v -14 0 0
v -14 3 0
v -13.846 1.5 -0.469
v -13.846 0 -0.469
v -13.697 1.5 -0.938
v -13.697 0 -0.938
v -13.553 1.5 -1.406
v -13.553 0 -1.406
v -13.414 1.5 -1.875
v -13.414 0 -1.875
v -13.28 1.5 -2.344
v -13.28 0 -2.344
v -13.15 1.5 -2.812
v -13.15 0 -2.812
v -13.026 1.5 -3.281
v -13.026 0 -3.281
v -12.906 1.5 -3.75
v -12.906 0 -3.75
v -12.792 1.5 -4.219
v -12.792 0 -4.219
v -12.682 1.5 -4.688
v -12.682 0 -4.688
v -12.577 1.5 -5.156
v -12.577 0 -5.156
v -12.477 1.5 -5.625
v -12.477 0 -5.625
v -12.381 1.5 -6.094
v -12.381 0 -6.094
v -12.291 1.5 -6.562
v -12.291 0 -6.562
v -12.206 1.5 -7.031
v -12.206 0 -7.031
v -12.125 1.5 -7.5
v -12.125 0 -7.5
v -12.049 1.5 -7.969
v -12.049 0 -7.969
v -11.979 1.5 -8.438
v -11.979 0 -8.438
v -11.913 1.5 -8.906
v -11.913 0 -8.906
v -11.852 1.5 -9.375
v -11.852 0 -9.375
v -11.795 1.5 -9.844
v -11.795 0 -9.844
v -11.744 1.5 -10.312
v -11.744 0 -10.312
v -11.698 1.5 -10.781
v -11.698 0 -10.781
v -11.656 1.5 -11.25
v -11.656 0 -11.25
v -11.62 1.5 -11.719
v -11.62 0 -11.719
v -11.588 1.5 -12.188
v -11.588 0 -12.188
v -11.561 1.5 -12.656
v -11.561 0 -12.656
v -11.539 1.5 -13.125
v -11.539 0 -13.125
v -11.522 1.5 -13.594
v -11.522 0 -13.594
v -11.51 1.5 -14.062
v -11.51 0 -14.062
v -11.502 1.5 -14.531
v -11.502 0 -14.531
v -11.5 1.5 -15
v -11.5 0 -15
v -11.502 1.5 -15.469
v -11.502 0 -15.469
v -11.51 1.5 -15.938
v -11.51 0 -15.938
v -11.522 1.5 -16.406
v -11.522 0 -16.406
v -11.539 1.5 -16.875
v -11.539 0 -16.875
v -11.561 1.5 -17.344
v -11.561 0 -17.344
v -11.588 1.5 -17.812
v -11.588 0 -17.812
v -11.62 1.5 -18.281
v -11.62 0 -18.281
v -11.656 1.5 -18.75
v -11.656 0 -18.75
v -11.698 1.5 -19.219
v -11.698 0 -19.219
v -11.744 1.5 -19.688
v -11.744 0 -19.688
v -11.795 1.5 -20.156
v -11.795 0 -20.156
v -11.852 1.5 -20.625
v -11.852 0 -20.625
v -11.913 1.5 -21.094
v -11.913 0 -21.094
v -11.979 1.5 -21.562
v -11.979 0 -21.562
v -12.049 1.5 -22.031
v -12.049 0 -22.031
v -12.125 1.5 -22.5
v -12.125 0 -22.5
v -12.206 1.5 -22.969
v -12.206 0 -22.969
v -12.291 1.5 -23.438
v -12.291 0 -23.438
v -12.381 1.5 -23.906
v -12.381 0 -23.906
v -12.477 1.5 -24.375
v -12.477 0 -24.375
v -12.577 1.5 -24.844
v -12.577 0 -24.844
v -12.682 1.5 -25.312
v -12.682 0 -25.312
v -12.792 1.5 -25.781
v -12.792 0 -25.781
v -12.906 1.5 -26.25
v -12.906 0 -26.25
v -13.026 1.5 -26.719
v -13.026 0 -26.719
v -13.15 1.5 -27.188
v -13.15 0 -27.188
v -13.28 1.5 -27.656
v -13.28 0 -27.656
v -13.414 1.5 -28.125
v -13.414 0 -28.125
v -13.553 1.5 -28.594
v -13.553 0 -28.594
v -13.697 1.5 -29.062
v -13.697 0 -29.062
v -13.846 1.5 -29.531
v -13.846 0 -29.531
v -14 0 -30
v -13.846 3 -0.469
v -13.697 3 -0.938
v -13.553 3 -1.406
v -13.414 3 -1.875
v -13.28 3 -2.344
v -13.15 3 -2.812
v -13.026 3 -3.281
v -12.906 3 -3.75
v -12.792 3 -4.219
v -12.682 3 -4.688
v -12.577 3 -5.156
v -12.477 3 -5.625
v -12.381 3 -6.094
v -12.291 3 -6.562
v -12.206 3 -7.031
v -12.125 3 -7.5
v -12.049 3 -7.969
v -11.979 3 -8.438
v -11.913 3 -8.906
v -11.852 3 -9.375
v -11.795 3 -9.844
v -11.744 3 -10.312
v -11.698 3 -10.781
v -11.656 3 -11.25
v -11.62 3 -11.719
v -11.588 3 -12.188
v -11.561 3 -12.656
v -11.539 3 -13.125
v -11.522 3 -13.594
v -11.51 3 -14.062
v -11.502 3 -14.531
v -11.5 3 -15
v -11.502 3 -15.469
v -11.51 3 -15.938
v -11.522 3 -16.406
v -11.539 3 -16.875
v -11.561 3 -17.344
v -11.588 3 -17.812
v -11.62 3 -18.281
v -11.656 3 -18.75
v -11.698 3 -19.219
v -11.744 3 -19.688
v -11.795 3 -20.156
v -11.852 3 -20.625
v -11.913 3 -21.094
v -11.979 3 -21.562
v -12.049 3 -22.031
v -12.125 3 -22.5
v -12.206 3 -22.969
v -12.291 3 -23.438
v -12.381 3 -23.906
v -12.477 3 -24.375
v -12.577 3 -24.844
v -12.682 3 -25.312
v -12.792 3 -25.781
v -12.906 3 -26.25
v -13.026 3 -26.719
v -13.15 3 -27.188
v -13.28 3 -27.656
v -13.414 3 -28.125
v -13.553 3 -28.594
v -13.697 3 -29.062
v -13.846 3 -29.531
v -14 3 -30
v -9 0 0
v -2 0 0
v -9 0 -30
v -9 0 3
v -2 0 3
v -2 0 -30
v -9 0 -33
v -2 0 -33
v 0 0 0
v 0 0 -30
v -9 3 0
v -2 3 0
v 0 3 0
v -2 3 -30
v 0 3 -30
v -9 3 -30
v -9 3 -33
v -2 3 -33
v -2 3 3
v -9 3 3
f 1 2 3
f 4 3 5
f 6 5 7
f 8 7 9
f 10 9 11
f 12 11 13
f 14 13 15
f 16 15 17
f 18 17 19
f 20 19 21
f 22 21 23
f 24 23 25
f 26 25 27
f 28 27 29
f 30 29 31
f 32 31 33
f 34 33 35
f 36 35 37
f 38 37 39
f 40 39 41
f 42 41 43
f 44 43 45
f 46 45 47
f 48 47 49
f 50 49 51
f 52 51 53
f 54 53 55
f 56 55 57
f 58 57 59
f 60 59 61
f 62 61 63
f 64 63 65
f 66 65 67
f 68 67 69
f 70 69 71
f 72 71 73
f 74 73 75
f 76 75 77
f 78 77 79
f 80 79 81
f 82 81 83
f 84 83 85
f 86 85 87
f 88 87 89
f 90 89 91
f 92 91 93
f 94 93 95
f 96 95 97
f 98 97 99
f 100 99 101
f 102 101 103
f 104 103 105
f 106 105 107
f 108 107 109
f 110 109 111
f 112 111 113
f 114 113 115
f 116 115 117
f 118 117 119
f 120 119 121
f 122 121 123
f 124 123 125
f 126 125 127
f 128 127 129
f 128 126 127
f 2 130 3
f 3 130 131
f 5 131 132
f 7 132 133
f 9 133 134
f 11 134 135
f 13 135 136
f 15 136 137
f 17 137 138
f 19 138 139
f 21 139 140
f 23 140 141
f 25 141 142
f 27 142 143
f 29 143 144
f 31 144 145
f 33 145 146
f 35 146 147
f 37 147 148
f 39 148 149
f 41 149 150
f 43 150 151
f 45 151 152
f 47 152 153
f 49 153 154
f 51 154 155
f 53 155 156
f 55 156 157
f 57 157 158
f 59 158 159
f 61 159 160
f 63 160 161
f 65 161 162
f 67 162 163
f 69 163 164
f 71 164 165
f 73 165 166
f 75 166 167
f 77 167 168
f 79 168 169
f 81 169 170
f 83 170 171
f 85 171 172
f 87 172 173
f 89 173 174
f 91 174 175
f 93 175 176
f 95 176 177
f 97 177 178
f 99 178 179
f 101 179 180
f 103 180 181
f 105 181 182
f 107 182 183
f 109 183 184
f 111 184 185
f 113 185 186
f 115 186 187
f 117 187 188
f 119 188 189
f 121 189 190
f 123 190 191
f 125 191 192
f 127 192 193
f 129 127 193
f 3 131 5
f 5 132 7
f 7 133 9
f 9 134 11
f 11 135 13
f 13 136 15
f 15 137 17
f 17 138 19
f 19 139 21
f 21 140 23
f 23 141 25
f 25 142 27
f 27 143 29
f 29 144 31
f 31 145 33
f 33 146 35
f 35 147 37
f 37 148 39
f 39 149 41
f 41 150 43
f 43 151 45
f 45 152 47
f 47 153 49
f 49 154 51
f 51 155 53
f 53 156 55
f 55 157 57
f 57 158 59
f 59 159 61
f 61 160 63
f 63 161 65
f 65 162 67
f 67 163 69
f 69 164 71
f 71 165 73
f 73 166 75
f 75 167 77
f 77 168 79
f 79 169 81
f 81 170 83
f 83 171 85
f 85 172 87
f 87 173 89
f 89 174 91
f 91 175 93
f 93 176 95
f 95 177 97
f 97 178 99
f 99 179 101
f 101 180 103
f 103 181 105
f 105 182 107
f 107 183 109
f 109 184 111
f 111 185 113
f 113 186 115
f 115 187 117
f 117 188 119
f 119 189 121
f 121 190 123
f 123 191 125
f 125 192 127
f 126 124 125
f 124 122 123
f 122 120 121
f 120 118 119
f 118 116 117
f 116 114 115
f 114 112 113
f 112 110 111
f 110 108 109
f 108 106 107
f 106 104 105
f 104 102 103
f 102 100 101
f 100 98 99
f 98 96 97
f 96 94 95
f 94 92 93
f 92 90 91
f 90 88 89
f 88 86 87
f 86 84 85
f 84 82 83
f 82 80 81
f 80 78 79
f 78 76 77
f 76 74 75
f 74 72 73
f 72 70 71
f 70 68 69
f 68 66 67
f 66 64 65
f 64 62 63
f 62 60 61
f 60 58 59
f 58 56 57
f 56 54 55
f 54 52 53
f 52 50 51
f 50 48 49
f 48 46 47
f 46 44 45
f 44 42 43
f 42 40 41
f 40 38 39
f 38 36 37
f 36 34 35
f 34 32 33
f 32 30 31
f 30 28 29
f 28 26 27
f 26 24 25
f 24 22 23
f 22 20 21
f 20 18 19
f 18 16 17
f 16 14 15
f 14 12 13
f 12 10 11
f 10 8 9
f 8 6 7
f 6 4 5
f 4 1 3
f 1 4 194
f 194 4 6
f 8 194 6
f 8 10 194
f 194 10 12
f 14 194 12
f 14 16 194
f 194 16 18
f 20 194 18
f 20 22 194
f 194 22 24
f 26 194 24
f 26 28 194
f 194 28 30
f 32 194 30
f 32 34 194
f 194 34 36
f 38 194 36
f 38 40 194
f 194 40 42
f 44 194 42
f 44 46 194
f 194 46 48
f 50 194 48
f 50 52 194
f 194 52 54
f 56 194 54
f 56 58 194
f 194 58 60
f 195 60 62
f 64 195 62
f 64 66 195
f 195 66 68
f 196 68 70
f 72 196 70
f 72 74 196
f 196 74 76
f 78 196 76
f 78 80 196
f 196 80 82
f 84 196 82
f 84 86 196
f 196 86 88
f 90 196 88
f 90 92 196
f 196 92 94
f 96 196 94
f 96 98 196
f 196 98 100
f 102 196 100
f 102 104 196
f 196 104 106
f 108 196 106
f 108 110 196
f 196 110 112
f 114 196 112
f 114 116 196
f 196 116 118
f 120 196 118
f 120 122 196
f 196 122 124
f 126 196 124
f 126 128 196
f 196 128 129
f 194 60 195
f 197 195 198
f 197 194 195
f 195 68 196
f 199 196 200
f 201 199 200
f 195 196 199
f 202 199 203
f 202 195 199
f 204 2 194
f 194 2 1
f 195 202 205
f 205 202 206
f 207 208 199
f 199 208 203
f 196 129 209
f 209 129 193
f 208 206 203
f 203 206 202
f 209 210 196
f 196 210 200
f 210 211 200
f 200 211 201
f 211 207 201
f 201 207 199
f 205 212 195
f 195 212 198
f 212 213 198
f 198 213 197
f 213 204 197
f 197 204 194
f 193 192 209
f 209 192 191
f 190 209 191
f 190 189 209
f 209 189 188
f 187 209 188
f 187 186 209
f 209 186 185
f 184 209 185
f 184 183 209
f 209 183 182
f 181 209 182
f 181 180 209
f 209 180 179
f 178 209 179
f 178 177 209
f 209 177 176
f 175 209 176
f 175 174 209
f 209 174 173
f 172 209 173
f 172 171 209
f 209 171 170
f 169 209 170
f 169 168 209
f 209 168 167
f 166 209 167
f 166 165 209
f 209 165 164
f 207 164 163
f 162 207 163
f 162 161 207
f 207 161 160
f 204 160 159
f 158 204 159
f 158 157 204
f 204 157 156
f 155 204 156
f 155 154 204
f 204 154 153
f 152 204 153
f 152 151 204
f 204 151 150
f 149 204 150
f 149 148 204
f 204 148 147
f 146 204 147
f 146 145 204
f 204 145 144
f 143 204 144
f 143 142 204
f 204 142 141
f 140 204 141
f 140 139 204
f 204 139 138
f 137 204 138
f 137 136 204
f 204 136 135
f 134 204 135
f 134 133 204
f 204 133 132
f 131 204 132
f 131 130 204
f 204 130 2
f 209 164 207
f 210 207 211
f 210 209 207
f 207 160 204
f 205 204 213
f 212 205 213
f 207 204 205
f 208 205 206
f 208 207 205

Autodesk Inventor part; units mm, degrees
ref_plane "YZ Plane" through (0, 0, 0) normal (1, 0, 0) x (0, 1, 0)
ref_plane "XZ Plane" through (0, 0, 0) normal (0, 1, 0) x (-1, 0, 0)
ref_plane "XY Plane" through (0, 0, 0) normal (0, 0, 1) x (1, 0, 0)
sketch "Esquisse1" plane through (0, 0, 0) normal (0, 1, 0) x (-1, 0, 0)
  line L0 (0, 0) -> (14, 0)
  line L1 (14, 0) -> (14, -30)
  line L2 (14, -30) -> (0, -30)
  line L3 (0, -30) -> (0, 0)
  line L4 (2, 0) -> (9, 0)
  line L5 (9, 0) -> (9, 3)
  line L6 (9, 3) -> (2, 3)
  line L7 (2, 3) -> (2, 0)
  line L8 (14, -15) -> (0, -15) construction
  line L9 (2, -30) -> (9, -30)
  line L10 (9, -30) -> (9, -33)
  line L11 (9, -33) -> (2, -33)
  line L12 (2, -33) -> (2, -30)
  dimension "d0" = 2
  dimension "d1" = 3
  dimension "d2" = 30
  dimension "d3" = 7
  dimension "d4" = 5
extrude "Plaque1" add sketch "Esquisse1" along normal blind 3
sketch "Esquisse2" plane through (0, 3, 0) normal (0, 1, 0) x (1, 0, 0)
  line L0 (-2, 0) -> (-2, -3) construction
  line L1 (0, 0) -> (-2, 0) construction
  line L2 (0, 30) -> (0, 0) construction
  line L3 (-2, 30) -> (0, 30) construction
  line L4 (-2, 33) -> (-2, 30) construction
  line L5 (-9, 33) -> (-2, 33) construction
  line L6 (-9, 30) -> (-9, 33) construction
  line L7 (-14, 30) -> (-9, 30) construction
  line L8 (-14, 0) -> (-14, 30) construction
  line L9 (-9, 0) -> (-14, 0) construction
  line L10 (-9, -3) -> (-9, 0) construction
  line L11 (-2, -3) -> (-9, -3) construction
  line L12 (-14, 0) -> (-14, 30) construction
  line L13 (-14, 0) -> (-9, 15) construction
  line L14 (-9, 15) -> (-14, 30) construction
  spline S0 degree 2 poles (-14, 0) (-9, 15) (-14, 30) knots 1 1 1 2 2 2
  line L15 (-14, 0) -> (-14, 30)
  line L16 (-9, 15) -> (-14, 15) construction
  line L17 (-14, 0) -> (-14, 30) construction
  dimension "d6" = 5
extrude "Couper1" cut sketch "Esquisse2" against normal blind 3
equation "\"d7\" = Epaisseur"
equation "\"LargeurGrugeage\" = Epaisseur"
equation "\"ProfondeurGrugeage\" = 0.5 * Epaisseur"
equation "\"TailleGrugeage\" = 4 * Epaisseur"
equation "\"RestesMinimum\" = 2 * Epaisseur"
equation "\"Rayondetransition\" = RayonPli"
equation "\"TailleRayonJacobi\" = RayonPli"
equation "\"TailleJeu\" = Epaisseur"
equation "\"d5\" = RayonPli"
equation "\"Epaisseur\" = 3"
equation "\"RayonPli\" = 4"
properties part number "tip_up" material "Plastique PMMA"
